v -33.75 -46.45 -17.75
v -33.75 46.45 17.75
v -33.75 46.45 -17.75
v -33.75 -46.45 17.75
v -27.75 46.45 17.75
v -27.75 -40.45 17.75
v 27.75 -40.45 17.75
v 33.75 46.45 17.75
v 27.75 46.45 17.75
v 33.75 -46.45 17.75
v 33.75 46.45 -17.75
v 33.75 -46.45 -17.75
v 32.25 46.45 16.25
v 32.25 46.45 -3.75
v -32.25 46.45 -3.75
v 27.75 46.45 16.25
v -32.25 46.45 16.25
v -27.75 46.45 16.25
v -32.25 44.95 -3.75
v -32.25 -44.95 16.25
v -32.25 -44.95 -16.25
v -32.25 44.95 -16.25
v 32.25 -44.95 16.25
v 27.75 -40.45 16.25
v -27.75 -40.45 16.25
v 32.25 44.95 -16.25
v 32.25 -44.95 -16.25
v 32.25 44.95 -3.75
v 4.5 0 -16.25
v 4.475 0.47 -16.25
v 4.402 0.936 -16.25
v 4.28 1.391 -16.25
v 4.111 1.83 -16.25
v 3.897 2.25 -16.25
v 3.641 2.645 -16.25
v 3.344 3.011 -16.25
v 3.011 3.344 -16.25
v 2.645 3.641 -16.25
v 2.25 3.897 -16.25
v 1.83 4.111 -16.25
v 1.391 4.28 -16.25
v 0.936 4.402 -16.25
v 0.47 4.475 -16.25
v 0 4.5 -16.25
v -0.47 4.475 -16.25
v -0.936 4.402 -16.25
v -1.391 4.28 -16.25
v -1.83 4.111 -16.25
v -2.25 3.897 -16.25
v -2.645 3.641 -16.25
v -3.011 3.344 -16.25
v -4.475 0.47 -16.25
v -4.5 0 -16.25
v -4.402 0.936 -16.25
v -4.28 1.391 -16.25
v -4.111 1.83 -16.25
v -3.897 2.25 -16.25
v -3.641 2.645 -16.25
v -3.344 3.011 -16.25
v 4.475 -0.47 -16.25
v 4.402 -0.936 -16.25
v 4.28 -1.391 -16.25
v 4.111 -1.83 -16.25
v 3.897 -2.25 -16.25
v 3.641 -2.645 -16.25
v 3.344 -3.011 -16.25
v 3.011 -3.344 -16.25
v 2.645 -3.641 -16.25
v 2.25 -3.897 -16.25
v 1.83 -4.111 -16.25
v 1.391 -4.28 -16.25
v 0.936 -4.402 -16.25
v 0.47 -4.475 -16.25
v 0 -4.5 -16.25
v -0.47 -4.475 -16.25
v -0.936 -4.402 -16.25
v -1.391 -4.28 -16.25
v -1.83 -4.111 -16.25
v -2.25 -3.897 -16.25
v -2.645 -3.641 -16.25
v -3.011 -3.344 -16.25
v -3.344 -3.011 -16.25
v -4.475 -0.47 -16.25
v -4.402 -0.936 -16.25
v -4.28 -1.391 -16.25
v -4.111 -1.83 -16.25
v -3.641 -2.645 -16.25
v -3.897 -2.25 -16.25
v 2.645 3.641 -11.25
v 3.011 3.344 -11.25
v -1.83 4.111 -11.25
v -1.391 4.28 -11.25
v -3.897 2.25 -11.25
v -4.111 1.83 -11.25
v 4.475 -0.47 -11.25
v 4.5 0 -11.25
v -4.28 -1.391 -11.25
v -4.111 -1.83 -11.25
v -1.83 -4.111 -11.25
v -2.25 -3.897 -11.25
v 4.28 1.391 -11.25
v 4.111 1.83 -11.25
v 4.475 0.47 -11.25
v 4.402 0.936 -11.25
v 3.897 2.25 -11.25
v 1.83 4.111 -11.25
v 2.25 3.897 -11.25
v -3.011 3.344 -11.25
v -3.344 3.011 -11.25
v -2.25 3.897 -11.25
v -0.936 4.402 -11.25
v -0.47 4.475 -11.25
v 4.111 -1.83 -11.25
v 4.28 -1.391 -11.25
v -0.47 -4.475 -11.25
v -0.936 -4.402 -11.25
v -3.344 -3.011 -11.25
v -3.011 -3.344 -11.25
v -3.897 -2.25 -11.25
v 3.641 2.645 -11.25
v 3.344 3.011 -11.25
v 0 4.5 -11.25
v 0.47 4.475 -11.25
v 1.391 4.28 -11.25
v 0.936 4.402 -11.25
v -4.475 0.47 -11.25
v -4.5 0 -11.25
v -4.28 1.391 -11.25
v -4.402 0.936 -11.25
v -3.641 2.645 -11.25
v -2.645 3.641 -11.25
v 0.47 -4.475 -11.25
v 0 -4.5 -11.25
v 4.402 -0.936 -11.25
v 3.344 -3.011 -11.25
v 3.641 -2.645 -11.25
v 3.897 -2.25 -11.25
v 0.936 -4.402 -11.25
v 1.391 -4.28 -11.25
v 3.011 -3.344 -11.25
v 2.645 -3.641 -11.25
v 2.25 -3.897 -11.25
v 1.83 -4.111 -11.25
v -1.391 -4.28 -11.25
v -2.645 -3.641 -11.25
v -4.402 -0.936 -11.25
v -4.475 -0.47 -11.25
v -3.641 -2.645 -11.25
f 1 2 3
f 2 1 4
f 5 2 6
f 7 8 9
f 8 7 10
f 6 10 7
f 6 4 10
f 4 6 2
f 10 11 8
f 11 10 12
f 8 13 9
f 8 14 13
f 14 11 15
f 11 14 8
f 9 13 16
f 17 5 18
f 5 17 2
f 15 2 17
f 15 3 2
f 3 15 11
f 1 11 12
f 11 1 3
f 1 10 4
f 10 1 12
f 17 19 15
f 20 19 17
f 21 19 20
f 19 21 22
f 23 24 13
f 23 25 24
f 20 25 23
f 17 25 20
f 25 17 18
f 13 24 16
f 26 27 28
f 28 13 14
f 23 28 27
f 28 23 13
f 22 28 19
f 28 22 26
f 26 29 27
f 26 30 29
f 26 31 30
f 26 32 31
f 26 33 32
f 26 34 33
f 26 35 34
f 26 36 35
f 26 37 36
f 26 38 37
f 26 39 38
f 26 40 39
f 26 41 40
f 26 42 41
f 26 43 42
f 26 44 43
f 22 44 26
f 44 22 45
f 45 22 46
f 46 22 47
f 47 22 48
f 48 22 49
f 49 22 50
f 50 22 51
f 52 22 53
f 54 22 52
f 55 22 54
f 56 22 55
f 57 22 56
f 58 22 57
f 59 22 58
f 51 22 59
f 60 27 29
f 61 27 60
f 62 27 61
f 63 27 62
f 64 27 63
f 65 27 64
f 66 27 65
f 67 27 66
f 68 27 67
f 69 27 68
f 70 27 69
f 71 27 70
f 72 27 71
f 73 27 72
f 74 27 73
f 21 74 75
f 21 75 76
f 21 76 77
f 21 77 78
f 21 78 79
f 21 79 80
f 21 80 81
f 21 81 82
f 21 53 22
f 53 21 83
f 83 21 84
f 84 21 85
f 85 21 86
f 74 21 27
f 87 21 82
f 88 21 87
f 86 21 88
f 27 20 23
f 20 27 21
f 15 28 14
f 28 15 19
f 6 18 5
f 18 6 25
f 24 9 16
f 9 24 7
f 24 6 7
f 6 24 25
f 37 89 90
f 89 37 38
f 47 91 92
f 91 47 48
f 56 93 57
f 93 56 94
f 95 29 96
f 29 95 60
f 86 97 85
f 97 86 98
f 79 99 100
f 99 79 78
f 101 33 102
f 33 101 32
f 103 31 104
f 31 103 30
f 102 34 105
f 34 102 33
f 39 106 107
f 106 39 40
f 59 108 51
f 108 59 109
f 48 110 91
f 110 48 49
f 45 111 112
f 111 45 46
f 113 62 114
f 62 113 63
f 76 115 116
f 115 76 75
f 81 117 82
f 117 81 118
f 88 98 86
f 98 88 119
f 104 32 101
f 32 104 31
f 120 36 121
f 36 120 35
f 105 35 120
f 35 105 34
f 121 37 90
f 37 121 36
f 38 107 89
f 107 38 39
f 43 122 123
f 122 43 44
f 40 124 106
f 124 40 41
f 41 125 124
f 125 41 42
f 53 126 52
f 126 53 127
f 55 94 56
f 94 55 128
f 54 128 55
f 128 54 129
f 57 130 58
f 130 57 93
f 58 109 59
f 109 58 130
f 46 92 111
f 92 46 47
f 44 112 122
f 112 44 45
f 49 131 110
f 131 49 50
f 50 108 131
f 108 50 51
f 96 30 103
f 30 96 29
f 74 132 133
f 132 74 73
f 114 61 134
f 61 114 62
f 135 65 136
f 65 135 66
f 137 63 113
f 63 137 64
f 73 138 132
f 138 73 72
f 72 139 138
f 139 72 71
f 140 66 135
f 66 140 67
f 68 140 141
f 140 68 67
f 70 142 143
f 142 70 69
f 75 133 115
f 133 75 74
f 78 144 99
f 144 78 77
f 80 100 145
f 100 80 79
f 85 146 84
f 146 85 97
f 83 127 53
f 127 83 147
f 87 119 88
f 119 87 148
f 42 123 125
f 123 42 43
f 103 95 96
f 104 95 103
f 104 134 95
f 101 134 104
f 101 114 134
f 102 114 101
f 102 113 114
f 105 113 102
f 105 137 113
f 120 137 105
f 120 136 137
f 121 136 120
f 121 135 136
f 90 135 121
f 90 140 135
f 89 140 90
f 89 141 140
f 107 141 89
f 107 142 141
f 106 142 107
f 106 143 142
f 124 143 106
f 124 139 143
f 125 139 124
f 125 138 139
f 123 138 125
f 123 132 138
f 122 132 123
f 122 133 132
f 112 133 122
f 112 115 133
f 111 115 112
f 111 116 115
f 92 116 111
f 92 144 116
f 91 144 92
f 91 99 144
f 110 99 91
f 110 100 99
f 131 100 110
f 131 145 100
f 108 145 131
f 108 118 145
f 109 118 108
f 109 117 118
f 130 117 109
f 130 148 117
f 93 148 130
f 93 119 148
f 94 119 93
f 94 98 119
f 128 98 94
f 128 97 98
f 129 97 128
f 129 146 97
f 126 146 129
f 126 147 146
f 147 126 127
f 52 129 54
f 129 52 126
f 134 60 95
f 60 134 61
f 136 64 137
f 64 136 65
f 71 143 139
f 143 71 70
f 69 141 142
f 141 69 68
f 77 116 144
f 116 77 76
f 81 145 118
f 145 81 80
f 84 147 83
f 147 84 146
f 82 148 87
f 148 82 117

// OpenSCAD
tolerance=1;
size_platform_z=1.5;
size_spring_z=5;
size_spring_dia=9;
size_wall=1.5;
size_x=63.5+size_wall*2+tolerance;
size_y=88.9+size_wall*2+tolerance;
size_z=20+size_wall*2+size_platform_z+size_spring_z*2+tolerance;
card_size_z=20;

//poker size
card_size_x=63.5+tolerance;
card_size_y=88.9+tolerance;

//bridge size
//card_size_x=56+tolerance;
//card_size_y=88.9+tolerance;

//b8
//card_size_x=62+tolerance;
//card_size_y=88+tolerance;


difference()
{
	//main box
	cube([size_x,size_y,size_z], center = true);
	
	//hollow deck + platform
	cube([card_size_x,card_size_y,size_z-size_wall*2], center = true);
	
	//cut card feeder
	translate([0,size_y/2-size_wall/2,(size_z-card_size_z)/2-size_wall])
	{
		cube([card_size_x, size_wall+1,card_size_z],center=true);
	}
	//cut roof
	translate([0,size_wall*3,size_z/2-size_wall/2])
	{
		cube([card_size_x-size_wall*6,card_size_y,size_wall+1], center=true);
	}
}

//spring holder
translate([0,0,-size_z/2+size_spring_z/2+size_wall])
{
	cylinder(h=size_spring_z, d1= size_spring_dia, d2=size_spring_dia, $fn=60, center = true);
}
